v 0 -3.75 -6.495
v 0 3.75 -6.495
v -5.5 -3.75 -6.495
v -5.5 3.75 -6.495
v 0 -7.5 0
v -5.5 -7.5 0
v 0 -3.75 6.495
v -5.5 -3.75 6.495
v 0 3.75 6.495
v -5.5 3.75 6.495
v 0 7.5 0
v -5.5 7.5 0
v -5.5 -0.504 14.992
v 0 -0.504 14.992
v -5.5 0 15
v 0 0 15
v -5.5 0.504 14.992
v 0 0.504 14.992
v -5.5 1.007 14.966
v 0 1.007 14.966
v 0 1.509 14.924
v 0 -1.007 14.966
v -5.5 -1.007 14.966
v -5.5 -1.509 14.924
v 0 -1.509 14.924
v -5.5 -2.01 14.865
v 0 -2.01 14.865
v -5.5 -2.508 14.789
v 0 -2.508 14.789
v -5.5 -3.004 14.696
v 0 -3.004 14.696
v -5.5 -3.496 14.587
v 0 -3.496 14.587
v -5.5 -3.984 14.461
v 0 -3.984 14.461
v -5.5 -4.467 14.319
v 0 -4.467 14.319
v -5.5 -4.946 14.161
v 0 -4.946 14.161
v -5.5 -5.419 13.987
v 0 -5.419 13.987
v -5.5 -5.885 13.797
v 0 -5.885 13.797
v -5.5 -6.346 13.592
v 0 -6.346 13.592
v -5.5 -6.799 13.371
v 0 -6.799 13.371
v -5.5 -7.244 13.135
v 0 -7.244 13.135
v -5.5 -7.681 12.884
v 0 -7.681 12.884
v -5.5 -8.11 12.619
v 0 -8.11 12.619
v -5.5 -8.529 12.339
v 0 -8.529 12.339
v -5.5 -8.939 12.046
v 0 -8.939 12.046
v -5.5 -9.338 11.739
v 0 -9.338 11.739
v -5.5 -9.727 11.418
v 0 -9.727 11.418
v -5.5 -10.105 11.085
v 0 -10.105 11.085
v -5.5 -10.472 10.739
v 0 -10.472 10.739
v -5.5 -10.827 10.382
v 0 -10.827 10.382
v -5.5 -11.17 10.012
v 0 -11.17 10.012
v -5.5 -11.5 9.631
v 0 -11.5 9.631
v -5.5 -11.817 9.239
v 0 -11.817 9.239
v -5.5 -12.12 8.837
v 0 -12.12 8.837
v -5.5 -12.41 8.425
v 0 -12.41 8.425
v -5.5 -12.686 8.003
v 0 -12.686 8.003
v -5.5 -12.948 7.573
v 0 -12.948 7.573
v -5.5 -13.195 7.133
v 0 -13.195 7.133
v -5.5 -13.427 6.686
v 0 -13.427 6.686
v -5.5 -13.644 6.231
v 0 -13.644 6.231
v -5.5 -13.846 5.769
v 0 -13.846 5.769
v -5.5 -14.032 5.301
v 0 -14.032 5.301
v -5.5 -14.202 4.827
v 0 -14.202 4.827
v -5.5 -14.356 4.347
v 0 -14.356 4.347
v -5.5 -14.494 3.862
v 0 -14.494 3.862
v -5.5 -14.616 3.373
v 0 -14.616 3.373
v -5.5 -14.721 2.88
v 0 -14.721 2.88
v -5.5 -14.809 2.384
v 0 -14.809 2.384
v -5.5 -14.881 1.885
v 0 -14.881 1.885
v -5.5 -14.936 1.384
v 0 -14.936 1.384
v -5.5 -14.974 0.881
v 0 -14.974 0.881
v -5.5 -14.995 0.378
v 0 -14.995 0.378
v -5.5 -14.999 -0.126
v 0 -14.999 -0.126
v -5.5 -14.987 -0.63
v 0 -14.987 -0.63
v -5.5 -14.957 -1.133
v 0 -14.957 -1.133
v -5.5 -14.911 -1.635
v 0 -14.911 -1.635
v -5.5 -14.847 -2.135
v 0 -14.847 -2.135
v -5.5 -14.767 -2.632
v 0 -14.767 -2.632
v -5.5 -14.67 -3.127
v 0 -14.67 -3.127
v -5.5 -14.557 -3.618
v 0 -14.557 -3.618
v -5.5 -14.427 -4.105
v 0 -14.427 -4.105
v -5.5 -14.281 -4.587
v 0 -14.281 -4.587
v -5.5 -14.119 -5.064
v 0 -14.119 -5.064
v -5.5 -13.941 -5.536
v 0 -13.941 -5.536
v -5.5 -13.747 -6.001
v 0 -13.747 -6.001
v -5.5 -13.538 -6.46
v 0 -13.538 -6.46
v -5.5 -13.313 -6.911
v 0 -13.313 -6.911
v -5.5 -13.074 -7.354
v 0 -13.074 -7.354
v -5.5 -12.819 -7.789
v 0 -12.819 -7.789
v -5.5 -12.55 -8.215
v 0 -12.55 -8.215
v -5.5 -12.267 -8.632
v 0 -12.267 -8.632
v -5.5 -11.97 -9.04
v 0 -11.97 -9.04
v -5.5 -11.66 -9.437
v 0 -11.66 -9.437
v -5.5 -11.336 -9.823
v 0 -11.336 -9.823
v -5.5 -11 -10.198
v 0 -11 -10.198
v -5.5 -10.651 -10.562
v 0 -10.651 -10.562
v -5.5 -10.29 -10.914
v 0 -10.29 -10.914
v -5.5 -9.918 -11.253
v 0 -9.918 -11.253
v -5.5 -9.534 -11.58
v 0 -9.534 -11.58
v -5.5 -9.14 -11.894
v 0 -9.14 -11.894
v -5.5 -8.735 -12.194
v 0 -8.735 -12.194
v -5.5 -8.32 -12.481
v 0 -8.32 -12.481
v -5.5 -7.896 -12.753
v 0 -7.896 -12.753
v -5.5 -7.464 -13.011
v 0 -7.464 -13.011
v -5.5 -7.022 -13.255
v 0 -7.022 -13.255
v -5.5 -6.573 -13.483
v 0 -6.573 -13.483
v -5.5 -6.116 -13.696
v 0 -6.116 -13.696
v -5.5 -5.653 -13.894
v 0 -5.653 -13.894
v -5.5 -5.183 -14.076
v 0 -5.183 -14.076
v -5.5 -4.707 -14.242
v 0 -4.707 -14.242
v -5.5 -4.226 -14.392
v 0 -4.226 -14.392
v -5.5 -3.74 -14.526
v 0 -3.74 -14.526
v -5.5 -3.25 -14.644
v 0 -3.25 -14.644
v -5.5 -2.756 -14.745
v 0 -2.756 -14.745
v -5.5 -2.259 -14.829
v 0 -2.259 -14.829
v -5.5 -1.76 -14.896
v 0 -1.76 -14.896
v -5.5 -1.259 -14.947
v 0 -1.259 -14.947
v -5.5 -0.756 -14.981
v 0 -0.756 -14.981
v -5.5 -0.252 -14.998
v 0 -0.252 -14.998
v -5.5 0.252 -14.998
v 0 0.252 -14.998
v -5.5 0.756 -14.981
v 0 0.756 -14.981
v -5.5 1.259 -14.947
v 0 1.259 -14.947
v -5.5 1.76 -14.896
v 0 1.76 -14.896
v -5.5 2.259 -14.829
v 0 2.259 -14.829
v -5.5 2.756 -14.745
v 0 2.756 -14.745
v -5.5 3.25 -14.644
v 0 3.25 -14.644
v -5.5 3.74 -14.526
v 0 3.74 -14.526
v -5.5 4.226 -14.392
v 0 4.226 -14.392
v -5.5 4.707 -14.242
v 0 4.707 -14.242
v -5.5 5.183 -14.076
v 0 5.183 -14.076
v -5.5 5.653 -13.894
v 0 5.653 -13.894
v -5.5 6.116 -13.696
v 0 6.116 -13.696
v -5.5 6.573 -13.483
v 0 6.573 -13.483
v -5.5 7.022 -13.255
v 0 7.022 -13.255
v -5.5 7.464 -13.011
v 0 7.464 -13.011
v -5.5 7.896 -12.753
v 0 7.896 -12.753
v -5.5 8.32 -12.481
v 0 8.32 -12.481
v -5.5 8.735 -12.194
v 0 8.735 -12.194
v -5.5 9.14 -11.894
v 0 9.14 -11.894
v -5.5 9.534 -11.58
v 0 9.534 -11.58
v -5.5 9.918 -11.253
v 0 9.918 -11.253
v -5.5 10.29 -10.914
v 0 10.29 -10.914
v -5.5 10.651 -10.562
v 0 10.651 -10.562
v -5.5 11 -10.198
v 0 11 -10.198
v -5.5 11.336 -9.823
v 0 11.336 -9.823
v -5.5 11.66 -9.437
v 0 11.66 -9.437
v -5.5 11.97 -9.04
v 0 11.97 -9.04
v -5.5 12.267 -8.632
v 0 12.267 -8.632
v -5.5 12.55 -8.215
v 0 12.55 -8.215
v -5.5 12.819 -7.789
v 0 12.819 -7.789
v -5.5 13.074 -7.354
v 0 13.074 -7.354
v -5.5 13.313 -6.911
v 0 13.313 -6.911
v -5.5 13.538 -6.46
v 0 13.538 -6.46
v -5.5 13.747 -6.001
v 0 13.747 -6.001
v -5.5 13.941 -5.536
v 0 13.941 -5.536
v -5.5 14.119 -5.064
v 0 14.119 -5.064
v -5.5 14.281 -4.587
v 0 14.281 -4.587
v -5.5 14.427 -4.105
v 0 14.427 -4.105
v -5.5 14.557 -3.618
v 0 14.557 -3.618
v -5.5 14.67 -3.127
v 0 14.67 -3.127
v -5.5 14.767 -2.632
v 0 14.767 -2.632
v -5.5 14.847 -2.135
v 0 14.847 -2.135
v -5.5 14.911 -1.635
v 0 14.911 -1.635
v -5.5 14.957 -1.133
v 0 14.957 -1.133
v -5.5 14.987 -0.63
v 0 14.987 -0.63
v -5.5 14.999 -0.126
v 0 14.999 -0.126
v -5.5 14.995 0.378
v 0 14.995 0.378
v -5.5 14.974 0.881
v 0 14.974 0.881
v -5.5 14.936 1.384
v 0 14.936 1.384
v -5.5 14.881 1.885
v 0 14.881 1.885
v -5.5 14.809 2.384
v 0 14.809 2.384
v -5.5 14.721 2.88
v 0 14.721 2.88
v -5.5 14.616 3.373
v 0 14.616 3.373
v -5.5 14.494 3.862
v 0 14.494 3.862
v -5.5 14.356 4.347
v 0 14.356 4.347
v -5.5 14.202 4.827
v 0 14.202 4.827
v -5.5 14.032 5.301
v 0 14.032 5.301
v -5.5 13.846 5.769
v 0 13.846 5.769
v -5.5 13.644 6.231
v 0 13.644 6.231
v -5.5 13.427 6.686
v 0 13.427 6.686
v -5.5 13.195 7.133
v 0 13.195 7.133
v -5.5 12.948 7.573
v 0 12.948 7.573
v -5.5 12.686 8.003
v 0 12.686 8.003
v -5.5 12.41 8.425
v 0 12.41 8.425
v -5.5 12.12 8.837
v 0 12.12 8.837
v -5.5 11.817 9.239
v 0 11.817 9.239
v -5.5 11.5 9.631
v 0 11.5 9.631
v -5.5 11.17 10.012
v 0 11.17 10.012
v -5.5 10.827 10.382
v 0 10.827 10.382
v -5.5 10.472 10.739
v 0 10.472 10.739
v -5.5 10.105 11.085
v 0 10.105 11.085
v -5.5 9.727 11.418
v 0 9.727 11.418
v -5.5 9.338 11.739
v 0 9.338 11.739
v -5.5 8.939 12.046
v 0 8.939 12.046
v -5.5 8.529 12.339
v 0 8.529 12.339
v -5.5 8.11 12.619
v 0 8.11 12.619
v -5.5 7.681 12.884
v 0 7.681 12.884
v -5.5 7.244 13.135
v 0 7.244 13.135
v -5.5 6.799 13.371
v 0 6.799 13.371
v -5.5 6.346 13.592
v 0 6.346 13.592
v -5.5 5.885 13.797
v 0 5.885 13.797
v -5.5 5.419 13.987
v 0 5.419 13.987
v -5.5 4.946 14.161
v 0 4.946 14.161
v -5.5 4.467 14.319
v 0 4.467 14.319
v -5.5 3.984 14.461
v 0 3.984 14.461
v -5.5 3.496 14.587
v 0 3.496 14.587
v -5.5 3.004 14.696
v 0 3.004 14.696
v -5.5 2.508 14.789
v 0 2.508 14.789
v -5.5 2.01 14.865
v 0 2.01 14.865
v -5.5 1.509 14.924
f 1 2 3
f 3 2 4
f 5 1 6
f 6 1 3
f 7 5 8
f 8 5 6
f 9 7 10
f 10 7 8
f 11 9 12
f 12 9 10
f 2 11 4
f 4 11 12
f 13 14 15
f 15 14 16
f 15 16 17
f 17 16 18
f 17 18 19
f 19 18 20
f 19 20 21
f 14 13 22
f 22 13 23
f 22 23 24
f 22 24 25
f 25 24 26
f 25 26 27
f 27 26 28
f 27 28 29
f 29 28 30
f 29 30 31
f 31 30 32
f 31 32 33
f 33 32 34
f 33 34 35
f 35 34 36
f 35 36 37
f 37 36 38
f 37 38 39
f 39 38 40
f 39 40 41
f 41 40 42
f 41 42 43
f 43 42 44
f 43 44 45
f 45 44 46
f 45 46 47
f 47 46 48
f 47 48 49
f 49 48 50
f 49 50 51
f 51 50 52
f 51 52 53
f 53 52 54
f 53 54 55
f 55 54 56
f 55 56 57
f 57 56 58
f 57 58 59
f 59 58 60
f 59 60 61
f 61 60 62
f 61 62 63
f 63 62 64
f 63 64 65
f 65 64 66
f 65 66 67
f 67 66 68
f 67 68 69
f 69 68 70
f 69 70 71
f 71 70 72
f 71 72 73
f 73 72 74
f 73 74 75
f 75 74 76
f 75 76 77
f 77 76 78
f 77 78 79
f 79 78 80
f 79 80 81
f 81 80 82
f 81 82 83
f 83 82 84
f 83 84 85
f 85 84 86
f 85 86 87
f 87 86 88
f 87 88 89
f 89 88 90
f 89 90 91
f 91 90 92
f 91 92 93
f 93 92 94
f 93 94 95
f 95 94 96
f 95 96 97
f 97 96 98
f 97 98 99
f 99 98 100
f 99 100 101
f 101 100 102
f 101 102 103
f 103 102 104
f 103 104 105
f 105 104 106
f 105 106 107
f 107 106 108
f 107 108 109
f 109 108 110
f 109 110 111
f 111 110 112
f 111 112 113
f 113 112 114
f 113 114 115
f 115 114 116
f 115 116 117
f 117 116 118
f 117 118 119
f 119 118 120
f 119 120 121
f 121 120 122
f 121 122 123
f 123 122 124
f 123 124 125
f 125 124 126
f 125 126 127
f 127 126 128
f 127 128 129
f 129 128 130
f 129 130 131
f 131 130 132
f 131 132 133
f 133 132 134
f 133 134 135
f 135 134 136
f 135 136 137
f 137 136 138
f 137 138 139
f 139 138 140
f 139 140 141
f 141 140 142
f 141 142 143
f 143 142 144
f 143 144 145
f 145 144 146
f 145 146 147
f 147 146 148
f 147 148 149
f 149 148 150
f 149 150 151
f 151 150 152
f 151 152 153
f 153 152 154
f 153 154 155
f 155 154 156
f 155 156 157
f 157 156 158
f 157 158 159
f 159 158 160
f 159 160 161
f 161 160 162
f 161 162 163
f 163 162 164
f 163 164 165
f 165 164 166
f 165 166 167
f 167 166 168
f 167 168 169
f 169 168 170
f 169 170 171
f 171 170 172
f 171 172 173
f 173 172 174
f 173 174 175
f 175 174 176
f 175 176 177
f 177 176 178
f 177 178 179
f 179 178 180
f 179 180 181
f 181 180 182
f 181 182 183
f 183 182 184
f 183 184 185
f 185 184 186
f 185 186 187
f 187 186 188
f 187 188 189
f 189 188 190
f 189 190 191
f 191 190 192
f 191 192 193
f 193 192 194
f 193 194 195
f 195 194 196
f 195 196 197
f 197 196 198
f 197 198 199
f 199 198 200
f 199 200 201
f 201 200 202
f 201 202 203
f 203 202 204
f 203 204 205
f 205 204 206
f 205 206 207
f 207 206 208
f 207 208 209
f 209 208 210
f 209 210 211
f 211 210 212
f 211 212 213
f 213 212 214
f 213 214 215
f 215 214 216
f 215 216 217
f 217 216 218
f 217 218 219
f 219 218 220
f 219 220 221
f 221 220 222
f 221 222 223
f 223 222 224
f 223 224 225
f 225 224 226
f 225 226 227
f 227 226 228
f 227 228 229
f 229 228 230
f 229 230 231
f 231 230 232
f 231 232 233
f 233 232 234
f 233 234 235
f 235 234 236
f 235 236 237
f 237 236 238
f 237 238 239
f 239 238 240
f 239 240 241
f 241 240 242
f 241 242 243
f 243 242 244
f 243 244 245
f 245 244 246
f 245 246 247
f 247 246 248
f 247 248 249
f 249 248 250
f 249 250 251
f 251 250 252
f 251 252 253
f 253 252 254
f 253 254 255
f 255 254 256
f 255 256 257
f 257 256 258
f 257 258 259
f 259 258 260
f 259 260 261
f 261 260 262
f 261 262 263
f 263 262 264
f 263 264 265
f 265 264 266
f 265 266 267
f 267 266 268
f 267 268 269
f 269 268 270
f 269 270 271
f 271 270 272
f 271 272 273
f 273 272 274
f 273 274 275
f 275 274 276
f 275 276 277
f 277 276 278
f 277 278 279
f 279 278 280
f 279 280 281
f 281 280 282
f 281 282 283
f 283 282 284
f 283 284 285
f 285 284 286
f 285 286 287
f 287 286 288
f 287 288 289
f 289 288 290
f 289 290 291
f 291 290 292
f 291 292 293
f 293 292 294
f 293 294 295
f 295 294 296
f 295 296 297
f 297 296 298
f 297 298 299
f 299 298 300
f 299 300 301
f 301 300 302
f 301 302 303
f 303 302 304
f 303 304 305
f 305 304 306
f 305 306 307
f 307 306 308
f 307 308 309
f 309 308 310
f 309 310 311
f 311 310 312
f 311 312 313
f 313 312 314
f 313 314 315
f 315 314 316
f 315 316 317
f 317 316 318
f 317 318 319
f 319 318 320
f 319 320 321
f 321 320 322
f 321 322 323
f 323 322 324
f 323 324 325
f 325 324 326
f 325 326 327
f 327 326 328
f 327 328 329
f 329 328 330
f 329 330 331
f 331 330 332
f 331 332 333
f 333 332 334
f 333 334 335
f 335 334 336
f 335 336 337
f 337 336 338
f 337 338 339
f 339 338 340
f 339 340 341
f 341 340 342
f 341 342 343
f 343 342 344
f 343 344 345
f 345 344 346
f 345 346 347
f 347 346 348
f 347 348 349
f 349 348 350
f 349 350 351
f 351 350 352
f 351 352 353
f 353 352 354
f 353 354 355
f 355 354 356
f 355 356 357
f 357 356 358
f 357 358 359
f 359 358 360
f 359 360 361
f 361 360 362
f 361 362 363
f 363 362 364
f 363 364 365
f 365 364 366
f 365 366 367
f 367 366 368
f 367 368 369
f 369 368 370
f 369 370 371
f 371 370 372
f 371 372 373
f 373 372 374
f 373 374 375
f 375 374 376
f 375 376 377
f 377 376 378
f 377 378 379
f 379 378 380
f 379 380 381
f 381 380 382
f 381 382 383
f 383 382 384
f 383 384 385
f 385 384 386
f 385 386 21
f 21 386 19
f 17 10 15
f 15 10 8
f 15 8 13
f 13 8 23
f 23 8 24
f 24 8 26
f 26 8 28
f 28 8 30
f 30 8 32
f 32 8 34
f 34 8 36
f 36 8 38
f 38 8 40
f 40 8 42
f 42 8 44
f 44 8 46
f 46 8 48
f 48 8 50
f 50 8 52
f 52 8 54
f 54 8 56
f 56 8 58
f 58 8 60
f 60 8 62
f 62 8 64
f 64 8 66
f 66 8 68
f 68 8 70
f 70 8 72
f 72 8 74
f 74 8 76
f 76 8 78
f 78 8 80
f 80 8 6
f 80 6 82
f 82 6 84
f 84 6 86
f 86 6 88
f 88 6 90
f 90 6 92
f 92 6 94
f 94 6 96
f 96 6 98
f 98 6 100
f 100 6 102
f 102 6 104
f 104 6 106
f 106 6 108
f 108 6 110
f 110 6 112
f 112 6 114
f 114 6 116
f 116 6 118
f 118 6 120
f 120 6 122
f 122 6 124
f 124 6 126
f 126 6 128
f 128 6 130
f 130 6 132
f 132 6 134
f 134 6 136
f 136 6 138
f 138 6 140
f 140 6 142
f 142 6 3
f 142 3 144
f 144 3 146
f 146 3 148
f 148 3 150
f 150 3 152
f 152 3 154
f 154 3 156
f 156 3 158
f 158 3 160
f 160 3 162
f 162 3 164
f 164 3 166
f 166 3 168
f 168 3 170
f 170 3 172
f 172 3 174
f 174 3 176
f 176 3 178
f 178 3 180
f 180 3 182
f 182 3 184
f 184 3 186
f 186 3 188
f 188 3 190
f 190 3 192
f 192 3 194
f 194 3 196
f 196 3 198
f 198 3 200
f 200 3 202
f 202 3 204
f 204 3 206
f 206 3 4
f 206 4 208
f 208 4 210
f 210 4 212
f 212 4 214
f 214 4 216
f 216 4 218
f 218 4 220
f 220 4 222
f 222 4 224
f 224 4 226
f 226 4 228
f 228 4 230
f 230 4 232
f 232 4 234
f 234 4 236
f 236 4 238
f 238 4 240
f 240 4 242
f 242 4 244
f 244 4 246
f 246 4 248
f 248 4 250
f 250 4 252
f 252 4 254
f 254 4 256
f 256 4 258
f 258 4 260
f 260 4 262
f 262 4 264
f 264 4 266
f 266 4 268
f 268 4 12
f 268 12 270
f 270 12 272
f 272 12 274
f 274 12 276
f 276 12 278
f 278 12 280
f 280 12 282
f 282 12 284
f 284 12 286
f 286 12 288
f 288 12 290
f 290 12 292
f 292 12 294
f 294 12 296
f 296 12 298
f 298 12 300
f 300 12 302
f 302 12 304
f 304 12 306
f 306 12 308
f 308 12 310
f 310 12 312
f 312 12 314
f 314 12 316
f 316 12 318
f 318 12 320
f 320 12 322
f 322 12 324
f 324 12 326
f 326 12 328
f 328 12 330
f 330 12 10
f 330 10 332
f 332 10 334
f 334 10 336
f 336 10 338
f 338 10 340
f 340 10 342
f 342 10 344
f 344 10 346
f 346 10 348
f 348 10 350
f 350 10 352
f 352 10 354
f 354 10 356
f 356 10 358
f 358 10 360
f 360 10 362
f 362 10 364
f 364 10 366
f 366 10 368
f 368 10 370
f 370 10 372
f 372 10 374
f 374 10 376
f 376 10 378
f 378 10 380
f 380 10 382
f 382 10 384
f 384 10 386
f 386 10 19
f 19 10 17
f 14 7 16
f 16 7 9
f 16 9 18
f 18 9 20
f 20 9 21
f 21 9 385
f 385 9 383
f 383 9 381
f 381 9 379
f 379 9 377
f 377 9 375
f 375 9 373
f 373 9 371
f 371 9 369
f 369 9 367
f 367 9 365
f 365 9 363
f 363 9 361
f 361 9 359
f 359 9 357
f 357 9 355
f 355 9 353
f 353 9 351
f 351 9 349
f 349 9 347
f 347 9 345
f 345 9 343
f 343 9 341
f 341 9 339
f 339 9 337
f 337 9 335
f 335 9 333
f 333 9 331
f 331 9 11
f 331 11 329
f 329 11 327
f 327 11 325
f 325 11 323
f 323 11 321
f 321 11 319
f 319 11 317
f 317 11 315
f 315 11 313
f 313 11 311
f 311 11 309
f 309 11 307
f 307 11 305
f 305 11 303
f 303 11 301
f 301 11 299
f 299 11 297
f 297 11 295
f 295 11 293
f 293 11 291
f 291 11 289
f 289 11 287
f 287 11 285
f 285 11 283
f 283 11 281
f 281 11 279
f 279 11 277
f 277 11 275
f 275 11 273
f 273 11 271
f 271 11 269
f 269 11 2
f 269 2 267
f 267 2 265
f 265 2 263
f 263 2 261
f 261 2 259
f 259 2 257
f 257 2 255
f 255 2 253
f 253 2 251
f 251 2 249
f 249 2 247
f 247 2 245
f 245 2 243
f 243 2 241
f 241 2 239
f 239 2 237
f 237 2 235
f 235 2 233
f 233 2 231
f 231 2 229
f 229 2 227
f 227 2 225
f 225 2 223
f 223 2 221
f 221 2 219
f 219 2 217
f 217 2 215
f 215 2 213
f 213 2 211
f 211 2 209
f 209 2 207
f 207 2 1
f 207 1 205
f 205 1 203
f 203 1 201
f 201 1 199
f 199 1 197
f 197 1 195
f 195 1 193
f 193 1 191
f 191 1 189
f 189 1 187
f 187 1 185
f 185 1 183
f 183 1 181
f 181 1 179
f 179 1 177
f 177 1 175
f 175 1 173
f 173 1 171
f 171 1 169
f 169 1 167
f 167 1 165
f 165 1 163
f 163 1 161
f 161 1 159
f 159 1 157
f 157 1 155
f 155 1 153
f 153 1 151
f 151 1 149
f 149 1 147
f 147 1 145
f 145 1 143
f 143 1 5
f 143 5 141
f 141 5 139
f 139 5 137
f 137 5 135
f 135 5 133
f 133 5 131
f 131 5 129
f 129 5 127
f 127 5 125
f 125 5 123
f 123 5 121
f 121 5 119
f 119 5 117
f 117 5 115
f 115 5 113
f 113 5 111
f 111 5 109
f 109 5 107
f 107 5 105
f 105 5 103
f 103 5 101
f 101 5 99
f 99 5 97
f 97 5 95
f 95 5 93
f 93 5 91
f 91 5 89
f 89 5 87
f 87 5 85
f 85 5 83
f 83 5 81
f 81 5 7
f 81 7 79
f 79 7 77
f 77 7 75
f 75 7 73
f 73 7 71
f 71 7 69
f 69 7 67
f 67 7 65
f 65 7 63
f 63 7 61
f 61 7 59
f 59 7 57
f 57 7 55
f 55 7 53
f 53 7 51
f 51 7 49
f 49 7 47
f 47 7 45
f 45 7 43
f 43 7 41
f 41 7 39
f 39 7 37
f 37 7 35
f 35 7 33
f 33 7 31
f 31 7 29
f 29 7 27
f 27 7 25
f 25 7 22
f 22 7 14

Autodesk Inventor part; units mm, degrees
ref_plane "YZ Plane" through (0, 0, 0) normal (1, 0, 0) x (0, 1, 0)
ref_plane "XZ Plane" through (0, 0, 0) normal (0, 1, 0) x (-1, 0, 0)
ref_plane "XY Plane" through (0, 0, 0) normal (0, 0, 1) x (1, 0, 0)
ref_plane "Work Plane1" through (0, 0, 0) normal (-1, 0, 0) x (0, 0, 1)
sketch "Sketch1" plane through (0, 0, 0) normal (-1, 0, 0) x (0, 0, 1)
  circle A0 centre (0, 0) radius 15 projected
  line L0 (-6.4952, 3.75) -> (-6.4952, -3.75) projected
  line L1 (0, 7.5) -> (-6.4952, 3.75) projected
  line L2 (6.4952, 3.75) -> (0, 7.5) projected
  line L3 (6.4952, -3.75) -> (6.4952, 3.75) projected
  line L4 (0, -7.5) -> (6.4952, -3.75) projected
  line L5 (-6.4952, -3.75) -> (0, -7.5) projected
extrude "Extrusion1" add sketch "Sketch1" along normal blind 5.5
properties part number "wheel_gearing_mount_extension"
